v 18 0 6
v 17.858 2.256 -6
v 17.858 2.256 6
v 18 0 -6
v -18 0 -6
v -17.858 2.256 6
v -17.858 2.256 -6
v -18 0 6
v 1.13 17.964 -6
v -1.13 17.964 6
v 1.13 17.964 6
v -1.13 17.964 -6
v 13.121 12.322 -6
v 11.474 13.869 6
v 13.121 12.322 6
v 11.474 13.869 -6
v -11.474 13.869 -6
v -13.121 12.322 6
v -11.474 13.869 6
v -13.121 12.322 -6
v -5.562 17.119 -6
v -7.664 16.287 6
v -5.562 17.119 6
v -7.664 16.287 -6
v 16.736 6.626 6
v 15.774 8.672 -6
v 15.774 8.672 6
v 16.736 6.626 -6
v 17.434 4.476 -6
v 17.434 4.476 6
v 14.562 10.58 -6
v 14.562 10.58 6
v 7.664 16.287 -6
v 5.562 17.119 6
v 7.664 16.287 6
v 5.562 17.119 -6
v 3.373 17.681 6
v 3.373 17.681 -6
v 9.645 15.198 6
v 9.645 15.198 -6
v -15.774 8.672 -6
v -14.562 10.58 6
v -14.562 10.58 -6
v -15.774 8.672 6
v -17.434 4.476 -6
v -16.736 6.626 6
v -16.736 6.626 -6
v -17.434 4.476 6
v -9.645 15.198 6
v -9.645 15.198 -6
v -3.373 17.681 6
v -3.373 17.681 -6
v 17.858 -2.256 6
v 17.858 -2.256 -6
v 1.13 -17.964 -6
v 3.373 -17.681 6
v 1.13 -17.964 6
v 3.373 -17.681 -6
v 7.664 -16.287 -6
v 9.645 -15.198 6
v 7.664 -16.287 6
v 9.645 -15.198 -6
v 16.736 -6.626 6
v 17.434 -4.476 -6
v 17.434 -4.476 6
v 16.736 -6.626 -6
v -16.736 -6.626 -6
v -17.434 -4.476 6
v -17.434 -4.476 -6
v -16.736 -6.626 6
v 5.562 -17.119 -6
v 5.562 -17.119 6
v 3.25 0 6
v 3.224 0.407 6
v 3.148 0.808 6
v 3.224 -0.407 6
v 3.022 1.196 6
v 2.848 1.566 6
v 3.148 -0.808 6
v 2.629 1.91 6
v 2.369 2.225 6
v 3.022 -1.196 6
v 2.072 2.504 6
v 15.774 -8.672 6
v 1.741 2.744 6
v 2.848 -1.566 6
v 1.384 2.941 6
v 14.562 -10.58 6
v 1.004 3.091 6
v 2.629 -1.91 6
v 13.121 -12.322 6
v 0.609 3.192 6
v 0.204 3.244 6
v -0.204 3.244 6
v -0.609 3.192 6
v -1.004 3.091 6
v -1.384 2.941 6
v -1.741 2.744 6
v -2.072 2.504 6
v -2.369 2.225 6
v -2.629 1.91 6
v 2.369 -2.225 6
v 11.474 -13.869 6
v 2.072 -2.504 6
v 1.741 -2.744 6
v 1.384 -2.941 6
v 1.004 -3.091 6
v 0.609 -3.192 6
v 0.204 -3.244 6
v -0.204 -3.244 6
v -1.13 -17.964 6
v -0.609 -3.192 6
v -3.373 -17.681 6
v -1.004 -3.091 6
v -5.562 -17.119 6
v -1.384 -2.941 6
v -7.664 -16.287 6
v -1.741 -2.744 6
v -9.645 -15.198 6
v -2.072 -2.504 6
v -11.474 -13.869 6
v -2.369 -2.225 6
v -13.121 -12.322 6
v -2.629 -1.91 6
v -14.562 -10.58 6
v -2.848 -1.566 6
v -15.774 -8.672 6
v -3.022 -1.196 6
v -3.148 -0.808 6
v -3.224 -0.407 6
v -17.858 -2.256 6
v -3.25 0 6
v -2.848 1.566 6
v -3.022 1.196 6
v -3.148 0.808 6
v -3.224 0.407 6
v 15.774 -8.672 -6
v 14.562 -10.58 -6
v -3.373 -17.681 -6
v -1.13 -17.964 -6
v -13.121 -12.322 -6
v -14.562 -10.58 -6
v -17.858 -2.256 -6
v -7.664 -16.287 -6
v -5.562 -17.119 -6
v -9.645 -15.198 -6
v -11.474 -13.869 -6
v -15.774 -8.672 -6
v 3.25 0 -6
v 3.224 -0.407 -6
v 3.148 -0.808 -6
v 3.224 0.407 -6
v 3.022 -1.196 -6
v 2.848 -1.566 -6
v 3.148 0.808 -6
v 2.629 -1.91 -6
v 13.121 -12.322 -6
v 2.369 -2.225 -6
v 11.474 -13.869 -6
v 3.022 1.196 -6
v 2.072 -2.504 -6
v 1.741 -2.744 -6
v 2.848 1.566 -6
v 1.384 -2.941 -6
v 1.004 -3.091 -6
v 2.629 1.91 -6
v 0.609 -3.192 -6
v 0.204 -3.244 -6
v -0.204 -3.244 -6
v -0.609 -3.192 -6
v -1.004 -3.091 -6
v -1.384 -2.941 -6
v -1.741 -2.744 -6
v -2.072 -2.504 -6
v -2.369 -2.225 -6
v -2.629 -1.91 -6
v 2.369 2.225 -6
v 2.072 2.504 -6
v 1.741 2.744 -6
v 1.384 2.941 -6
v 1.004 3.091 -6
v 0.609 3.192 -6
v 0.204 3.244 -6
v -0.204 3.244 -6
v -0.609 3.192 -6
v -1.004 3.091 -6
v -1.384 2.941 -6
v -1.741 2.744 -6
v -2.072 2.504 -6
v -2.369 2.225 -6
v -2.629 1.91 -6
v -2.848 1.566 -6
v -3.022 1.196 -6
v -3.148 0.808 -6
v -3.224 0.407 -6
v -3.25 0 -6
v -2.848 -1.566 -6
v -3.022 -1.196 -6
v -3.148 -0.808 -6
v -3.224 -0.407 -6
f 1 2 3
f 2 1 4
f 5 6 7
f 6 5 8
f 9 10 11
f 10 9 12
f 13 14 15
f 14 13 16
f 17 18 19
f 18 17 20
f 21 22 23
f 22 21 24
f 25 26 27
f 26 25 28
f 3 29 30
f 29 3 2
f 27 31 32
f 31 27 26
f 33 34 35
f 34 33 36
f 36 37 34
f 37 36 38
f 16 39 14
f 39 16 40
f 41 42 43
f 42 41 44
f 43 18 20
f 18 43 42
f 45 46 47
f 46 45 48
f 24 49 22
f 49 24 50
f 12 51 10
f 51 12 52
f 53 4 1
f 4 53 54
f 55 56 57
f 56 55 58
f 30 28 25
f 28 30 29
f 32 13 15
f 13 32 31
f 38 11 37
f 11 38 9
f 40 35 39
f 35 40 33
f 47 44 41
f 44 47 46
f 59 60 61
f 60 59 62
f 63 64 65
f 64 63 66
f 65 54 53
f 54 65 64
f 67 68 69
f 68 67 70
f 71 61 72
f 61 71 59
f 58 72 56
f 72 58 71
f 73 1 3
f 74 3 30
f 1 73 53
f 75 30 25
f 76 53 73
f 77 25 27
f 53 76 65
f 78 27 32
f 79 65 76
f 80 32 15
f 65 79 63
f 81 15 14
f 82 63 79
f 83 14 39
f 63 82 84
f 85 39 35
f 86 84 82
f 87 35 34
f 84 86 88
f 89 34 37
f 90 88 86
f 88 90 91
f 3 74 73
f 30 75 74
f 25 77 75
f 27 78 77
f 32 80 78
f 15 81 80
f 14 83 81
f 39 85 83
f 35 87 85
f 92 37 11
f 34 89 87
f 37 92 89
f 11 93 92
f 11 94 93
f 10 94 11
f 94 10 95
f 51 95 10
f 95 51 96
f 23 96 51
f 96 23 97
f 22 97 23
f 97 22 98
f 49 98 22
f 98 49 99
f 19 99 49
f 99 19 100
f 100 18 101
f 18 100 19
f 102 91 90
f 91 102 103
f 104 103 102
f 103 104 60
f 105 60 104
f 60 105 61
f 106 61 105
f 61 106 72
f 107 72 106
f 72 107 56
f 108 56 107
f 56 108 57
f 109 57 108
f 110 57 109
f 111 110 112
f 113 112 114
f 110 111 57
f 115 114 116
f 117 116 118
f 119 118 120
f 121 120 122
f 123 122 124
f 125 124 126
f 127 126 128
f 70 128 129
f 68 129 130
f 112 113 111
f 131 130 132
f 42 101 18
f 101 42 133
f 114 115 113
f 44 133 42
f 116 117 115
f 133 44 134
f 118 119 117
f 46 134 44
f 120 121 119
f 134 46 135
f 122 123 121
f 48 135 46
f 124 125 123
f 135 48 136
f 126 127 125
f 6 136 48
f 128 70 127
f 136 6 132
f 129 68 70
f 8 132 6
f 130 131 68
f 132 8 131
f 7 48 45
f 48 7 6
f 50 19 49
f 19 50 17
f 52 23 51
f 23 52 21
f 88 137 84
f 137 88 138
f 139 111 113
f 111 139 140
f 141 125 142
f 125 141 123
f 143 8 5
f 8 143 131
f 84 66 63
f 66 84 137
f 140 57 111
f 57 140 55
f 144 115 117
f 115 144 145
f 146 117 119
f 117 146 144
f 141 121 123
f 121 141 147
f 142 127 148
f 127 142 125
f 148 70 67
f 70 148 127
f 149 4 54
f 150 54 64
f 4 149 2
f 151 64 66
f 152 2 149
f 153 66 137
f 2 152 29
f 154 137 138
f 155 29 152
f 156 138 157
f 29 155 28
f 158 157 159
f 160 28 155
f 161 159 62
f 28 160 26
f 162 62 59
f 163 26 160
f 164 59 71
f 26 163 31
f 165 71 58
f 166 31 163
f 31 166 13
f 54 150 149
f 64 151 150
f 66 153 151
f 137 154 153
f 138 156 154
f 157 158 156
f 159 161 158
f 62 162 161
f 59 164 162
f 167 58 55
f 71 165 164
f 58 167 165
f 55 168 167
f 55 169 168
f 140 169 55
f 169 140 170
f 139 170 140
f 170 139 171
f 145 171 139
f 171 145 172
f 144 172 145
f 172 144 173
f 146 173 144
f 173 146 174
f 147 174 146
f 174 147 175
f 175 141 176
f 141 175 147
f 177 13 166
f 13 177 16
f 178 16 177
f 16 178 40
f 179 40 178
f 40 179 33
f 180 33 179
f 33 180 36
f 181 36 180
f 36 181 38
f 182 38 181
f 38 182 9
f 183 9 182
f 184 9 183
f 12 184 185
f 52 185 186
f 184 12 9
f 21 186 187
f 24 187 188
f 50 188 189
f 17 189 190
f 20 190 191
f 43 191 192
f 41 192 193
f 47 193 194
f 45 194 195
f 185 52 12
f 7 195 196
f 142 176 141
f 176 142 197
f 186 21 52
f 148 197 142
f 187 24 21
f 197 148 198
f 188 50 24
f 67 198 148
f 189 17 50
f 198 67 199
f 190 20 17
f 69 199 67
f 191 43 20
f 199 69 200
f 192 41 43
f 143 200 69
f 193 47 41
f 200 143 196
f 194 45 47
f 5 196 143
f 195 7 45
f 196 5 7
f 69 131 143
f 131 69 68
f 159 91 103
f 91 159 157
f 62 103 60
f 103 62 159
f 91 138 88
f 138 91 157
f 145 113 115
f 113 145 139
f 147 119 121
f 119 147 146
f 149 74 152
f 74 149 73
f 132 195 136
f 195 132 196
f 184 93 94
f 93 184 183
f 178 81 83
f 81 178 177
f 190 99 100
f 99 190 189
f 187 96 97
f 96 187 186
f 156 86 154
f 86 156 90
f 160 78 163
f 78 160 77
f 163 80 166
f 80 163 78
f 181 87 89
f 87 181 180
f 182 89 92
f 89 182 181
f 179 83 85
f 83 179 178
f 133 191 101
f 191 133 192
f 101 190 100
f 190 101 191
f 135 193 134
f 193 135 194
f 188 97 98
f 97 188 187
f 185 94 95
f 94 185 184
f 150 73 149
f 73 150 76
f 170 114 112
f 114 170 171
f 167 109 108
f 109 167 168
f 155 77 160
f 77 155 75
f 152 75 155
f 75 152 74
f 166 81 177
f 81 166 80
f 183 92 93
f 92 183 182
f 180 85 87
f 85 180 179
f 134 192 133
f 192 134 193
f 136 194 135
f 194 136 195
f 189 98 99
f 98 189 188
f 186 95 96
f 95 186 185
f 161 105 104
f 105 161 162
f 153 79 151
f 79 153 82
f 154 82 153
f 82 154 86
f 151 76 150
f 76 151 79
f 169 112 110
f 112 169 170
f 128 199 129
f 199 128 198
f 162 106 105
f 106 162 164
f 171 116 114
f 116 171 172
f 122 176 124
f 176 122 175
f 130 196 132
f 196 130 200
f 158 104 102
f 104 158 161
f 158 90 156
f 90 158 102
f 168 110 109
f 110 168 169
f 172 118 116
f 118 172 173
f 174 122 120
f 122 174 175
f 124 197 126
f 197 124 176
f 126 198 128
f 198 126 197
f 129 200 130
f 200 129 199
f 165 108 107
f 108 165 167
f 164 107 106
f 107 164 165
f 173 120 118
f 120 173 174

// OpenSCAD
$fn = 50;


difference() {
	union() {
		translate(v = [0, 0, -6.0000000000]) {
			cylinder(h = 12, r = 18.0000000000);
		}
	}
	union() {
		translate(v = [0, 0, -100.0000000000]) {
			cylinder(h = 200, r = 3.2500000000);
		}
	}
}
